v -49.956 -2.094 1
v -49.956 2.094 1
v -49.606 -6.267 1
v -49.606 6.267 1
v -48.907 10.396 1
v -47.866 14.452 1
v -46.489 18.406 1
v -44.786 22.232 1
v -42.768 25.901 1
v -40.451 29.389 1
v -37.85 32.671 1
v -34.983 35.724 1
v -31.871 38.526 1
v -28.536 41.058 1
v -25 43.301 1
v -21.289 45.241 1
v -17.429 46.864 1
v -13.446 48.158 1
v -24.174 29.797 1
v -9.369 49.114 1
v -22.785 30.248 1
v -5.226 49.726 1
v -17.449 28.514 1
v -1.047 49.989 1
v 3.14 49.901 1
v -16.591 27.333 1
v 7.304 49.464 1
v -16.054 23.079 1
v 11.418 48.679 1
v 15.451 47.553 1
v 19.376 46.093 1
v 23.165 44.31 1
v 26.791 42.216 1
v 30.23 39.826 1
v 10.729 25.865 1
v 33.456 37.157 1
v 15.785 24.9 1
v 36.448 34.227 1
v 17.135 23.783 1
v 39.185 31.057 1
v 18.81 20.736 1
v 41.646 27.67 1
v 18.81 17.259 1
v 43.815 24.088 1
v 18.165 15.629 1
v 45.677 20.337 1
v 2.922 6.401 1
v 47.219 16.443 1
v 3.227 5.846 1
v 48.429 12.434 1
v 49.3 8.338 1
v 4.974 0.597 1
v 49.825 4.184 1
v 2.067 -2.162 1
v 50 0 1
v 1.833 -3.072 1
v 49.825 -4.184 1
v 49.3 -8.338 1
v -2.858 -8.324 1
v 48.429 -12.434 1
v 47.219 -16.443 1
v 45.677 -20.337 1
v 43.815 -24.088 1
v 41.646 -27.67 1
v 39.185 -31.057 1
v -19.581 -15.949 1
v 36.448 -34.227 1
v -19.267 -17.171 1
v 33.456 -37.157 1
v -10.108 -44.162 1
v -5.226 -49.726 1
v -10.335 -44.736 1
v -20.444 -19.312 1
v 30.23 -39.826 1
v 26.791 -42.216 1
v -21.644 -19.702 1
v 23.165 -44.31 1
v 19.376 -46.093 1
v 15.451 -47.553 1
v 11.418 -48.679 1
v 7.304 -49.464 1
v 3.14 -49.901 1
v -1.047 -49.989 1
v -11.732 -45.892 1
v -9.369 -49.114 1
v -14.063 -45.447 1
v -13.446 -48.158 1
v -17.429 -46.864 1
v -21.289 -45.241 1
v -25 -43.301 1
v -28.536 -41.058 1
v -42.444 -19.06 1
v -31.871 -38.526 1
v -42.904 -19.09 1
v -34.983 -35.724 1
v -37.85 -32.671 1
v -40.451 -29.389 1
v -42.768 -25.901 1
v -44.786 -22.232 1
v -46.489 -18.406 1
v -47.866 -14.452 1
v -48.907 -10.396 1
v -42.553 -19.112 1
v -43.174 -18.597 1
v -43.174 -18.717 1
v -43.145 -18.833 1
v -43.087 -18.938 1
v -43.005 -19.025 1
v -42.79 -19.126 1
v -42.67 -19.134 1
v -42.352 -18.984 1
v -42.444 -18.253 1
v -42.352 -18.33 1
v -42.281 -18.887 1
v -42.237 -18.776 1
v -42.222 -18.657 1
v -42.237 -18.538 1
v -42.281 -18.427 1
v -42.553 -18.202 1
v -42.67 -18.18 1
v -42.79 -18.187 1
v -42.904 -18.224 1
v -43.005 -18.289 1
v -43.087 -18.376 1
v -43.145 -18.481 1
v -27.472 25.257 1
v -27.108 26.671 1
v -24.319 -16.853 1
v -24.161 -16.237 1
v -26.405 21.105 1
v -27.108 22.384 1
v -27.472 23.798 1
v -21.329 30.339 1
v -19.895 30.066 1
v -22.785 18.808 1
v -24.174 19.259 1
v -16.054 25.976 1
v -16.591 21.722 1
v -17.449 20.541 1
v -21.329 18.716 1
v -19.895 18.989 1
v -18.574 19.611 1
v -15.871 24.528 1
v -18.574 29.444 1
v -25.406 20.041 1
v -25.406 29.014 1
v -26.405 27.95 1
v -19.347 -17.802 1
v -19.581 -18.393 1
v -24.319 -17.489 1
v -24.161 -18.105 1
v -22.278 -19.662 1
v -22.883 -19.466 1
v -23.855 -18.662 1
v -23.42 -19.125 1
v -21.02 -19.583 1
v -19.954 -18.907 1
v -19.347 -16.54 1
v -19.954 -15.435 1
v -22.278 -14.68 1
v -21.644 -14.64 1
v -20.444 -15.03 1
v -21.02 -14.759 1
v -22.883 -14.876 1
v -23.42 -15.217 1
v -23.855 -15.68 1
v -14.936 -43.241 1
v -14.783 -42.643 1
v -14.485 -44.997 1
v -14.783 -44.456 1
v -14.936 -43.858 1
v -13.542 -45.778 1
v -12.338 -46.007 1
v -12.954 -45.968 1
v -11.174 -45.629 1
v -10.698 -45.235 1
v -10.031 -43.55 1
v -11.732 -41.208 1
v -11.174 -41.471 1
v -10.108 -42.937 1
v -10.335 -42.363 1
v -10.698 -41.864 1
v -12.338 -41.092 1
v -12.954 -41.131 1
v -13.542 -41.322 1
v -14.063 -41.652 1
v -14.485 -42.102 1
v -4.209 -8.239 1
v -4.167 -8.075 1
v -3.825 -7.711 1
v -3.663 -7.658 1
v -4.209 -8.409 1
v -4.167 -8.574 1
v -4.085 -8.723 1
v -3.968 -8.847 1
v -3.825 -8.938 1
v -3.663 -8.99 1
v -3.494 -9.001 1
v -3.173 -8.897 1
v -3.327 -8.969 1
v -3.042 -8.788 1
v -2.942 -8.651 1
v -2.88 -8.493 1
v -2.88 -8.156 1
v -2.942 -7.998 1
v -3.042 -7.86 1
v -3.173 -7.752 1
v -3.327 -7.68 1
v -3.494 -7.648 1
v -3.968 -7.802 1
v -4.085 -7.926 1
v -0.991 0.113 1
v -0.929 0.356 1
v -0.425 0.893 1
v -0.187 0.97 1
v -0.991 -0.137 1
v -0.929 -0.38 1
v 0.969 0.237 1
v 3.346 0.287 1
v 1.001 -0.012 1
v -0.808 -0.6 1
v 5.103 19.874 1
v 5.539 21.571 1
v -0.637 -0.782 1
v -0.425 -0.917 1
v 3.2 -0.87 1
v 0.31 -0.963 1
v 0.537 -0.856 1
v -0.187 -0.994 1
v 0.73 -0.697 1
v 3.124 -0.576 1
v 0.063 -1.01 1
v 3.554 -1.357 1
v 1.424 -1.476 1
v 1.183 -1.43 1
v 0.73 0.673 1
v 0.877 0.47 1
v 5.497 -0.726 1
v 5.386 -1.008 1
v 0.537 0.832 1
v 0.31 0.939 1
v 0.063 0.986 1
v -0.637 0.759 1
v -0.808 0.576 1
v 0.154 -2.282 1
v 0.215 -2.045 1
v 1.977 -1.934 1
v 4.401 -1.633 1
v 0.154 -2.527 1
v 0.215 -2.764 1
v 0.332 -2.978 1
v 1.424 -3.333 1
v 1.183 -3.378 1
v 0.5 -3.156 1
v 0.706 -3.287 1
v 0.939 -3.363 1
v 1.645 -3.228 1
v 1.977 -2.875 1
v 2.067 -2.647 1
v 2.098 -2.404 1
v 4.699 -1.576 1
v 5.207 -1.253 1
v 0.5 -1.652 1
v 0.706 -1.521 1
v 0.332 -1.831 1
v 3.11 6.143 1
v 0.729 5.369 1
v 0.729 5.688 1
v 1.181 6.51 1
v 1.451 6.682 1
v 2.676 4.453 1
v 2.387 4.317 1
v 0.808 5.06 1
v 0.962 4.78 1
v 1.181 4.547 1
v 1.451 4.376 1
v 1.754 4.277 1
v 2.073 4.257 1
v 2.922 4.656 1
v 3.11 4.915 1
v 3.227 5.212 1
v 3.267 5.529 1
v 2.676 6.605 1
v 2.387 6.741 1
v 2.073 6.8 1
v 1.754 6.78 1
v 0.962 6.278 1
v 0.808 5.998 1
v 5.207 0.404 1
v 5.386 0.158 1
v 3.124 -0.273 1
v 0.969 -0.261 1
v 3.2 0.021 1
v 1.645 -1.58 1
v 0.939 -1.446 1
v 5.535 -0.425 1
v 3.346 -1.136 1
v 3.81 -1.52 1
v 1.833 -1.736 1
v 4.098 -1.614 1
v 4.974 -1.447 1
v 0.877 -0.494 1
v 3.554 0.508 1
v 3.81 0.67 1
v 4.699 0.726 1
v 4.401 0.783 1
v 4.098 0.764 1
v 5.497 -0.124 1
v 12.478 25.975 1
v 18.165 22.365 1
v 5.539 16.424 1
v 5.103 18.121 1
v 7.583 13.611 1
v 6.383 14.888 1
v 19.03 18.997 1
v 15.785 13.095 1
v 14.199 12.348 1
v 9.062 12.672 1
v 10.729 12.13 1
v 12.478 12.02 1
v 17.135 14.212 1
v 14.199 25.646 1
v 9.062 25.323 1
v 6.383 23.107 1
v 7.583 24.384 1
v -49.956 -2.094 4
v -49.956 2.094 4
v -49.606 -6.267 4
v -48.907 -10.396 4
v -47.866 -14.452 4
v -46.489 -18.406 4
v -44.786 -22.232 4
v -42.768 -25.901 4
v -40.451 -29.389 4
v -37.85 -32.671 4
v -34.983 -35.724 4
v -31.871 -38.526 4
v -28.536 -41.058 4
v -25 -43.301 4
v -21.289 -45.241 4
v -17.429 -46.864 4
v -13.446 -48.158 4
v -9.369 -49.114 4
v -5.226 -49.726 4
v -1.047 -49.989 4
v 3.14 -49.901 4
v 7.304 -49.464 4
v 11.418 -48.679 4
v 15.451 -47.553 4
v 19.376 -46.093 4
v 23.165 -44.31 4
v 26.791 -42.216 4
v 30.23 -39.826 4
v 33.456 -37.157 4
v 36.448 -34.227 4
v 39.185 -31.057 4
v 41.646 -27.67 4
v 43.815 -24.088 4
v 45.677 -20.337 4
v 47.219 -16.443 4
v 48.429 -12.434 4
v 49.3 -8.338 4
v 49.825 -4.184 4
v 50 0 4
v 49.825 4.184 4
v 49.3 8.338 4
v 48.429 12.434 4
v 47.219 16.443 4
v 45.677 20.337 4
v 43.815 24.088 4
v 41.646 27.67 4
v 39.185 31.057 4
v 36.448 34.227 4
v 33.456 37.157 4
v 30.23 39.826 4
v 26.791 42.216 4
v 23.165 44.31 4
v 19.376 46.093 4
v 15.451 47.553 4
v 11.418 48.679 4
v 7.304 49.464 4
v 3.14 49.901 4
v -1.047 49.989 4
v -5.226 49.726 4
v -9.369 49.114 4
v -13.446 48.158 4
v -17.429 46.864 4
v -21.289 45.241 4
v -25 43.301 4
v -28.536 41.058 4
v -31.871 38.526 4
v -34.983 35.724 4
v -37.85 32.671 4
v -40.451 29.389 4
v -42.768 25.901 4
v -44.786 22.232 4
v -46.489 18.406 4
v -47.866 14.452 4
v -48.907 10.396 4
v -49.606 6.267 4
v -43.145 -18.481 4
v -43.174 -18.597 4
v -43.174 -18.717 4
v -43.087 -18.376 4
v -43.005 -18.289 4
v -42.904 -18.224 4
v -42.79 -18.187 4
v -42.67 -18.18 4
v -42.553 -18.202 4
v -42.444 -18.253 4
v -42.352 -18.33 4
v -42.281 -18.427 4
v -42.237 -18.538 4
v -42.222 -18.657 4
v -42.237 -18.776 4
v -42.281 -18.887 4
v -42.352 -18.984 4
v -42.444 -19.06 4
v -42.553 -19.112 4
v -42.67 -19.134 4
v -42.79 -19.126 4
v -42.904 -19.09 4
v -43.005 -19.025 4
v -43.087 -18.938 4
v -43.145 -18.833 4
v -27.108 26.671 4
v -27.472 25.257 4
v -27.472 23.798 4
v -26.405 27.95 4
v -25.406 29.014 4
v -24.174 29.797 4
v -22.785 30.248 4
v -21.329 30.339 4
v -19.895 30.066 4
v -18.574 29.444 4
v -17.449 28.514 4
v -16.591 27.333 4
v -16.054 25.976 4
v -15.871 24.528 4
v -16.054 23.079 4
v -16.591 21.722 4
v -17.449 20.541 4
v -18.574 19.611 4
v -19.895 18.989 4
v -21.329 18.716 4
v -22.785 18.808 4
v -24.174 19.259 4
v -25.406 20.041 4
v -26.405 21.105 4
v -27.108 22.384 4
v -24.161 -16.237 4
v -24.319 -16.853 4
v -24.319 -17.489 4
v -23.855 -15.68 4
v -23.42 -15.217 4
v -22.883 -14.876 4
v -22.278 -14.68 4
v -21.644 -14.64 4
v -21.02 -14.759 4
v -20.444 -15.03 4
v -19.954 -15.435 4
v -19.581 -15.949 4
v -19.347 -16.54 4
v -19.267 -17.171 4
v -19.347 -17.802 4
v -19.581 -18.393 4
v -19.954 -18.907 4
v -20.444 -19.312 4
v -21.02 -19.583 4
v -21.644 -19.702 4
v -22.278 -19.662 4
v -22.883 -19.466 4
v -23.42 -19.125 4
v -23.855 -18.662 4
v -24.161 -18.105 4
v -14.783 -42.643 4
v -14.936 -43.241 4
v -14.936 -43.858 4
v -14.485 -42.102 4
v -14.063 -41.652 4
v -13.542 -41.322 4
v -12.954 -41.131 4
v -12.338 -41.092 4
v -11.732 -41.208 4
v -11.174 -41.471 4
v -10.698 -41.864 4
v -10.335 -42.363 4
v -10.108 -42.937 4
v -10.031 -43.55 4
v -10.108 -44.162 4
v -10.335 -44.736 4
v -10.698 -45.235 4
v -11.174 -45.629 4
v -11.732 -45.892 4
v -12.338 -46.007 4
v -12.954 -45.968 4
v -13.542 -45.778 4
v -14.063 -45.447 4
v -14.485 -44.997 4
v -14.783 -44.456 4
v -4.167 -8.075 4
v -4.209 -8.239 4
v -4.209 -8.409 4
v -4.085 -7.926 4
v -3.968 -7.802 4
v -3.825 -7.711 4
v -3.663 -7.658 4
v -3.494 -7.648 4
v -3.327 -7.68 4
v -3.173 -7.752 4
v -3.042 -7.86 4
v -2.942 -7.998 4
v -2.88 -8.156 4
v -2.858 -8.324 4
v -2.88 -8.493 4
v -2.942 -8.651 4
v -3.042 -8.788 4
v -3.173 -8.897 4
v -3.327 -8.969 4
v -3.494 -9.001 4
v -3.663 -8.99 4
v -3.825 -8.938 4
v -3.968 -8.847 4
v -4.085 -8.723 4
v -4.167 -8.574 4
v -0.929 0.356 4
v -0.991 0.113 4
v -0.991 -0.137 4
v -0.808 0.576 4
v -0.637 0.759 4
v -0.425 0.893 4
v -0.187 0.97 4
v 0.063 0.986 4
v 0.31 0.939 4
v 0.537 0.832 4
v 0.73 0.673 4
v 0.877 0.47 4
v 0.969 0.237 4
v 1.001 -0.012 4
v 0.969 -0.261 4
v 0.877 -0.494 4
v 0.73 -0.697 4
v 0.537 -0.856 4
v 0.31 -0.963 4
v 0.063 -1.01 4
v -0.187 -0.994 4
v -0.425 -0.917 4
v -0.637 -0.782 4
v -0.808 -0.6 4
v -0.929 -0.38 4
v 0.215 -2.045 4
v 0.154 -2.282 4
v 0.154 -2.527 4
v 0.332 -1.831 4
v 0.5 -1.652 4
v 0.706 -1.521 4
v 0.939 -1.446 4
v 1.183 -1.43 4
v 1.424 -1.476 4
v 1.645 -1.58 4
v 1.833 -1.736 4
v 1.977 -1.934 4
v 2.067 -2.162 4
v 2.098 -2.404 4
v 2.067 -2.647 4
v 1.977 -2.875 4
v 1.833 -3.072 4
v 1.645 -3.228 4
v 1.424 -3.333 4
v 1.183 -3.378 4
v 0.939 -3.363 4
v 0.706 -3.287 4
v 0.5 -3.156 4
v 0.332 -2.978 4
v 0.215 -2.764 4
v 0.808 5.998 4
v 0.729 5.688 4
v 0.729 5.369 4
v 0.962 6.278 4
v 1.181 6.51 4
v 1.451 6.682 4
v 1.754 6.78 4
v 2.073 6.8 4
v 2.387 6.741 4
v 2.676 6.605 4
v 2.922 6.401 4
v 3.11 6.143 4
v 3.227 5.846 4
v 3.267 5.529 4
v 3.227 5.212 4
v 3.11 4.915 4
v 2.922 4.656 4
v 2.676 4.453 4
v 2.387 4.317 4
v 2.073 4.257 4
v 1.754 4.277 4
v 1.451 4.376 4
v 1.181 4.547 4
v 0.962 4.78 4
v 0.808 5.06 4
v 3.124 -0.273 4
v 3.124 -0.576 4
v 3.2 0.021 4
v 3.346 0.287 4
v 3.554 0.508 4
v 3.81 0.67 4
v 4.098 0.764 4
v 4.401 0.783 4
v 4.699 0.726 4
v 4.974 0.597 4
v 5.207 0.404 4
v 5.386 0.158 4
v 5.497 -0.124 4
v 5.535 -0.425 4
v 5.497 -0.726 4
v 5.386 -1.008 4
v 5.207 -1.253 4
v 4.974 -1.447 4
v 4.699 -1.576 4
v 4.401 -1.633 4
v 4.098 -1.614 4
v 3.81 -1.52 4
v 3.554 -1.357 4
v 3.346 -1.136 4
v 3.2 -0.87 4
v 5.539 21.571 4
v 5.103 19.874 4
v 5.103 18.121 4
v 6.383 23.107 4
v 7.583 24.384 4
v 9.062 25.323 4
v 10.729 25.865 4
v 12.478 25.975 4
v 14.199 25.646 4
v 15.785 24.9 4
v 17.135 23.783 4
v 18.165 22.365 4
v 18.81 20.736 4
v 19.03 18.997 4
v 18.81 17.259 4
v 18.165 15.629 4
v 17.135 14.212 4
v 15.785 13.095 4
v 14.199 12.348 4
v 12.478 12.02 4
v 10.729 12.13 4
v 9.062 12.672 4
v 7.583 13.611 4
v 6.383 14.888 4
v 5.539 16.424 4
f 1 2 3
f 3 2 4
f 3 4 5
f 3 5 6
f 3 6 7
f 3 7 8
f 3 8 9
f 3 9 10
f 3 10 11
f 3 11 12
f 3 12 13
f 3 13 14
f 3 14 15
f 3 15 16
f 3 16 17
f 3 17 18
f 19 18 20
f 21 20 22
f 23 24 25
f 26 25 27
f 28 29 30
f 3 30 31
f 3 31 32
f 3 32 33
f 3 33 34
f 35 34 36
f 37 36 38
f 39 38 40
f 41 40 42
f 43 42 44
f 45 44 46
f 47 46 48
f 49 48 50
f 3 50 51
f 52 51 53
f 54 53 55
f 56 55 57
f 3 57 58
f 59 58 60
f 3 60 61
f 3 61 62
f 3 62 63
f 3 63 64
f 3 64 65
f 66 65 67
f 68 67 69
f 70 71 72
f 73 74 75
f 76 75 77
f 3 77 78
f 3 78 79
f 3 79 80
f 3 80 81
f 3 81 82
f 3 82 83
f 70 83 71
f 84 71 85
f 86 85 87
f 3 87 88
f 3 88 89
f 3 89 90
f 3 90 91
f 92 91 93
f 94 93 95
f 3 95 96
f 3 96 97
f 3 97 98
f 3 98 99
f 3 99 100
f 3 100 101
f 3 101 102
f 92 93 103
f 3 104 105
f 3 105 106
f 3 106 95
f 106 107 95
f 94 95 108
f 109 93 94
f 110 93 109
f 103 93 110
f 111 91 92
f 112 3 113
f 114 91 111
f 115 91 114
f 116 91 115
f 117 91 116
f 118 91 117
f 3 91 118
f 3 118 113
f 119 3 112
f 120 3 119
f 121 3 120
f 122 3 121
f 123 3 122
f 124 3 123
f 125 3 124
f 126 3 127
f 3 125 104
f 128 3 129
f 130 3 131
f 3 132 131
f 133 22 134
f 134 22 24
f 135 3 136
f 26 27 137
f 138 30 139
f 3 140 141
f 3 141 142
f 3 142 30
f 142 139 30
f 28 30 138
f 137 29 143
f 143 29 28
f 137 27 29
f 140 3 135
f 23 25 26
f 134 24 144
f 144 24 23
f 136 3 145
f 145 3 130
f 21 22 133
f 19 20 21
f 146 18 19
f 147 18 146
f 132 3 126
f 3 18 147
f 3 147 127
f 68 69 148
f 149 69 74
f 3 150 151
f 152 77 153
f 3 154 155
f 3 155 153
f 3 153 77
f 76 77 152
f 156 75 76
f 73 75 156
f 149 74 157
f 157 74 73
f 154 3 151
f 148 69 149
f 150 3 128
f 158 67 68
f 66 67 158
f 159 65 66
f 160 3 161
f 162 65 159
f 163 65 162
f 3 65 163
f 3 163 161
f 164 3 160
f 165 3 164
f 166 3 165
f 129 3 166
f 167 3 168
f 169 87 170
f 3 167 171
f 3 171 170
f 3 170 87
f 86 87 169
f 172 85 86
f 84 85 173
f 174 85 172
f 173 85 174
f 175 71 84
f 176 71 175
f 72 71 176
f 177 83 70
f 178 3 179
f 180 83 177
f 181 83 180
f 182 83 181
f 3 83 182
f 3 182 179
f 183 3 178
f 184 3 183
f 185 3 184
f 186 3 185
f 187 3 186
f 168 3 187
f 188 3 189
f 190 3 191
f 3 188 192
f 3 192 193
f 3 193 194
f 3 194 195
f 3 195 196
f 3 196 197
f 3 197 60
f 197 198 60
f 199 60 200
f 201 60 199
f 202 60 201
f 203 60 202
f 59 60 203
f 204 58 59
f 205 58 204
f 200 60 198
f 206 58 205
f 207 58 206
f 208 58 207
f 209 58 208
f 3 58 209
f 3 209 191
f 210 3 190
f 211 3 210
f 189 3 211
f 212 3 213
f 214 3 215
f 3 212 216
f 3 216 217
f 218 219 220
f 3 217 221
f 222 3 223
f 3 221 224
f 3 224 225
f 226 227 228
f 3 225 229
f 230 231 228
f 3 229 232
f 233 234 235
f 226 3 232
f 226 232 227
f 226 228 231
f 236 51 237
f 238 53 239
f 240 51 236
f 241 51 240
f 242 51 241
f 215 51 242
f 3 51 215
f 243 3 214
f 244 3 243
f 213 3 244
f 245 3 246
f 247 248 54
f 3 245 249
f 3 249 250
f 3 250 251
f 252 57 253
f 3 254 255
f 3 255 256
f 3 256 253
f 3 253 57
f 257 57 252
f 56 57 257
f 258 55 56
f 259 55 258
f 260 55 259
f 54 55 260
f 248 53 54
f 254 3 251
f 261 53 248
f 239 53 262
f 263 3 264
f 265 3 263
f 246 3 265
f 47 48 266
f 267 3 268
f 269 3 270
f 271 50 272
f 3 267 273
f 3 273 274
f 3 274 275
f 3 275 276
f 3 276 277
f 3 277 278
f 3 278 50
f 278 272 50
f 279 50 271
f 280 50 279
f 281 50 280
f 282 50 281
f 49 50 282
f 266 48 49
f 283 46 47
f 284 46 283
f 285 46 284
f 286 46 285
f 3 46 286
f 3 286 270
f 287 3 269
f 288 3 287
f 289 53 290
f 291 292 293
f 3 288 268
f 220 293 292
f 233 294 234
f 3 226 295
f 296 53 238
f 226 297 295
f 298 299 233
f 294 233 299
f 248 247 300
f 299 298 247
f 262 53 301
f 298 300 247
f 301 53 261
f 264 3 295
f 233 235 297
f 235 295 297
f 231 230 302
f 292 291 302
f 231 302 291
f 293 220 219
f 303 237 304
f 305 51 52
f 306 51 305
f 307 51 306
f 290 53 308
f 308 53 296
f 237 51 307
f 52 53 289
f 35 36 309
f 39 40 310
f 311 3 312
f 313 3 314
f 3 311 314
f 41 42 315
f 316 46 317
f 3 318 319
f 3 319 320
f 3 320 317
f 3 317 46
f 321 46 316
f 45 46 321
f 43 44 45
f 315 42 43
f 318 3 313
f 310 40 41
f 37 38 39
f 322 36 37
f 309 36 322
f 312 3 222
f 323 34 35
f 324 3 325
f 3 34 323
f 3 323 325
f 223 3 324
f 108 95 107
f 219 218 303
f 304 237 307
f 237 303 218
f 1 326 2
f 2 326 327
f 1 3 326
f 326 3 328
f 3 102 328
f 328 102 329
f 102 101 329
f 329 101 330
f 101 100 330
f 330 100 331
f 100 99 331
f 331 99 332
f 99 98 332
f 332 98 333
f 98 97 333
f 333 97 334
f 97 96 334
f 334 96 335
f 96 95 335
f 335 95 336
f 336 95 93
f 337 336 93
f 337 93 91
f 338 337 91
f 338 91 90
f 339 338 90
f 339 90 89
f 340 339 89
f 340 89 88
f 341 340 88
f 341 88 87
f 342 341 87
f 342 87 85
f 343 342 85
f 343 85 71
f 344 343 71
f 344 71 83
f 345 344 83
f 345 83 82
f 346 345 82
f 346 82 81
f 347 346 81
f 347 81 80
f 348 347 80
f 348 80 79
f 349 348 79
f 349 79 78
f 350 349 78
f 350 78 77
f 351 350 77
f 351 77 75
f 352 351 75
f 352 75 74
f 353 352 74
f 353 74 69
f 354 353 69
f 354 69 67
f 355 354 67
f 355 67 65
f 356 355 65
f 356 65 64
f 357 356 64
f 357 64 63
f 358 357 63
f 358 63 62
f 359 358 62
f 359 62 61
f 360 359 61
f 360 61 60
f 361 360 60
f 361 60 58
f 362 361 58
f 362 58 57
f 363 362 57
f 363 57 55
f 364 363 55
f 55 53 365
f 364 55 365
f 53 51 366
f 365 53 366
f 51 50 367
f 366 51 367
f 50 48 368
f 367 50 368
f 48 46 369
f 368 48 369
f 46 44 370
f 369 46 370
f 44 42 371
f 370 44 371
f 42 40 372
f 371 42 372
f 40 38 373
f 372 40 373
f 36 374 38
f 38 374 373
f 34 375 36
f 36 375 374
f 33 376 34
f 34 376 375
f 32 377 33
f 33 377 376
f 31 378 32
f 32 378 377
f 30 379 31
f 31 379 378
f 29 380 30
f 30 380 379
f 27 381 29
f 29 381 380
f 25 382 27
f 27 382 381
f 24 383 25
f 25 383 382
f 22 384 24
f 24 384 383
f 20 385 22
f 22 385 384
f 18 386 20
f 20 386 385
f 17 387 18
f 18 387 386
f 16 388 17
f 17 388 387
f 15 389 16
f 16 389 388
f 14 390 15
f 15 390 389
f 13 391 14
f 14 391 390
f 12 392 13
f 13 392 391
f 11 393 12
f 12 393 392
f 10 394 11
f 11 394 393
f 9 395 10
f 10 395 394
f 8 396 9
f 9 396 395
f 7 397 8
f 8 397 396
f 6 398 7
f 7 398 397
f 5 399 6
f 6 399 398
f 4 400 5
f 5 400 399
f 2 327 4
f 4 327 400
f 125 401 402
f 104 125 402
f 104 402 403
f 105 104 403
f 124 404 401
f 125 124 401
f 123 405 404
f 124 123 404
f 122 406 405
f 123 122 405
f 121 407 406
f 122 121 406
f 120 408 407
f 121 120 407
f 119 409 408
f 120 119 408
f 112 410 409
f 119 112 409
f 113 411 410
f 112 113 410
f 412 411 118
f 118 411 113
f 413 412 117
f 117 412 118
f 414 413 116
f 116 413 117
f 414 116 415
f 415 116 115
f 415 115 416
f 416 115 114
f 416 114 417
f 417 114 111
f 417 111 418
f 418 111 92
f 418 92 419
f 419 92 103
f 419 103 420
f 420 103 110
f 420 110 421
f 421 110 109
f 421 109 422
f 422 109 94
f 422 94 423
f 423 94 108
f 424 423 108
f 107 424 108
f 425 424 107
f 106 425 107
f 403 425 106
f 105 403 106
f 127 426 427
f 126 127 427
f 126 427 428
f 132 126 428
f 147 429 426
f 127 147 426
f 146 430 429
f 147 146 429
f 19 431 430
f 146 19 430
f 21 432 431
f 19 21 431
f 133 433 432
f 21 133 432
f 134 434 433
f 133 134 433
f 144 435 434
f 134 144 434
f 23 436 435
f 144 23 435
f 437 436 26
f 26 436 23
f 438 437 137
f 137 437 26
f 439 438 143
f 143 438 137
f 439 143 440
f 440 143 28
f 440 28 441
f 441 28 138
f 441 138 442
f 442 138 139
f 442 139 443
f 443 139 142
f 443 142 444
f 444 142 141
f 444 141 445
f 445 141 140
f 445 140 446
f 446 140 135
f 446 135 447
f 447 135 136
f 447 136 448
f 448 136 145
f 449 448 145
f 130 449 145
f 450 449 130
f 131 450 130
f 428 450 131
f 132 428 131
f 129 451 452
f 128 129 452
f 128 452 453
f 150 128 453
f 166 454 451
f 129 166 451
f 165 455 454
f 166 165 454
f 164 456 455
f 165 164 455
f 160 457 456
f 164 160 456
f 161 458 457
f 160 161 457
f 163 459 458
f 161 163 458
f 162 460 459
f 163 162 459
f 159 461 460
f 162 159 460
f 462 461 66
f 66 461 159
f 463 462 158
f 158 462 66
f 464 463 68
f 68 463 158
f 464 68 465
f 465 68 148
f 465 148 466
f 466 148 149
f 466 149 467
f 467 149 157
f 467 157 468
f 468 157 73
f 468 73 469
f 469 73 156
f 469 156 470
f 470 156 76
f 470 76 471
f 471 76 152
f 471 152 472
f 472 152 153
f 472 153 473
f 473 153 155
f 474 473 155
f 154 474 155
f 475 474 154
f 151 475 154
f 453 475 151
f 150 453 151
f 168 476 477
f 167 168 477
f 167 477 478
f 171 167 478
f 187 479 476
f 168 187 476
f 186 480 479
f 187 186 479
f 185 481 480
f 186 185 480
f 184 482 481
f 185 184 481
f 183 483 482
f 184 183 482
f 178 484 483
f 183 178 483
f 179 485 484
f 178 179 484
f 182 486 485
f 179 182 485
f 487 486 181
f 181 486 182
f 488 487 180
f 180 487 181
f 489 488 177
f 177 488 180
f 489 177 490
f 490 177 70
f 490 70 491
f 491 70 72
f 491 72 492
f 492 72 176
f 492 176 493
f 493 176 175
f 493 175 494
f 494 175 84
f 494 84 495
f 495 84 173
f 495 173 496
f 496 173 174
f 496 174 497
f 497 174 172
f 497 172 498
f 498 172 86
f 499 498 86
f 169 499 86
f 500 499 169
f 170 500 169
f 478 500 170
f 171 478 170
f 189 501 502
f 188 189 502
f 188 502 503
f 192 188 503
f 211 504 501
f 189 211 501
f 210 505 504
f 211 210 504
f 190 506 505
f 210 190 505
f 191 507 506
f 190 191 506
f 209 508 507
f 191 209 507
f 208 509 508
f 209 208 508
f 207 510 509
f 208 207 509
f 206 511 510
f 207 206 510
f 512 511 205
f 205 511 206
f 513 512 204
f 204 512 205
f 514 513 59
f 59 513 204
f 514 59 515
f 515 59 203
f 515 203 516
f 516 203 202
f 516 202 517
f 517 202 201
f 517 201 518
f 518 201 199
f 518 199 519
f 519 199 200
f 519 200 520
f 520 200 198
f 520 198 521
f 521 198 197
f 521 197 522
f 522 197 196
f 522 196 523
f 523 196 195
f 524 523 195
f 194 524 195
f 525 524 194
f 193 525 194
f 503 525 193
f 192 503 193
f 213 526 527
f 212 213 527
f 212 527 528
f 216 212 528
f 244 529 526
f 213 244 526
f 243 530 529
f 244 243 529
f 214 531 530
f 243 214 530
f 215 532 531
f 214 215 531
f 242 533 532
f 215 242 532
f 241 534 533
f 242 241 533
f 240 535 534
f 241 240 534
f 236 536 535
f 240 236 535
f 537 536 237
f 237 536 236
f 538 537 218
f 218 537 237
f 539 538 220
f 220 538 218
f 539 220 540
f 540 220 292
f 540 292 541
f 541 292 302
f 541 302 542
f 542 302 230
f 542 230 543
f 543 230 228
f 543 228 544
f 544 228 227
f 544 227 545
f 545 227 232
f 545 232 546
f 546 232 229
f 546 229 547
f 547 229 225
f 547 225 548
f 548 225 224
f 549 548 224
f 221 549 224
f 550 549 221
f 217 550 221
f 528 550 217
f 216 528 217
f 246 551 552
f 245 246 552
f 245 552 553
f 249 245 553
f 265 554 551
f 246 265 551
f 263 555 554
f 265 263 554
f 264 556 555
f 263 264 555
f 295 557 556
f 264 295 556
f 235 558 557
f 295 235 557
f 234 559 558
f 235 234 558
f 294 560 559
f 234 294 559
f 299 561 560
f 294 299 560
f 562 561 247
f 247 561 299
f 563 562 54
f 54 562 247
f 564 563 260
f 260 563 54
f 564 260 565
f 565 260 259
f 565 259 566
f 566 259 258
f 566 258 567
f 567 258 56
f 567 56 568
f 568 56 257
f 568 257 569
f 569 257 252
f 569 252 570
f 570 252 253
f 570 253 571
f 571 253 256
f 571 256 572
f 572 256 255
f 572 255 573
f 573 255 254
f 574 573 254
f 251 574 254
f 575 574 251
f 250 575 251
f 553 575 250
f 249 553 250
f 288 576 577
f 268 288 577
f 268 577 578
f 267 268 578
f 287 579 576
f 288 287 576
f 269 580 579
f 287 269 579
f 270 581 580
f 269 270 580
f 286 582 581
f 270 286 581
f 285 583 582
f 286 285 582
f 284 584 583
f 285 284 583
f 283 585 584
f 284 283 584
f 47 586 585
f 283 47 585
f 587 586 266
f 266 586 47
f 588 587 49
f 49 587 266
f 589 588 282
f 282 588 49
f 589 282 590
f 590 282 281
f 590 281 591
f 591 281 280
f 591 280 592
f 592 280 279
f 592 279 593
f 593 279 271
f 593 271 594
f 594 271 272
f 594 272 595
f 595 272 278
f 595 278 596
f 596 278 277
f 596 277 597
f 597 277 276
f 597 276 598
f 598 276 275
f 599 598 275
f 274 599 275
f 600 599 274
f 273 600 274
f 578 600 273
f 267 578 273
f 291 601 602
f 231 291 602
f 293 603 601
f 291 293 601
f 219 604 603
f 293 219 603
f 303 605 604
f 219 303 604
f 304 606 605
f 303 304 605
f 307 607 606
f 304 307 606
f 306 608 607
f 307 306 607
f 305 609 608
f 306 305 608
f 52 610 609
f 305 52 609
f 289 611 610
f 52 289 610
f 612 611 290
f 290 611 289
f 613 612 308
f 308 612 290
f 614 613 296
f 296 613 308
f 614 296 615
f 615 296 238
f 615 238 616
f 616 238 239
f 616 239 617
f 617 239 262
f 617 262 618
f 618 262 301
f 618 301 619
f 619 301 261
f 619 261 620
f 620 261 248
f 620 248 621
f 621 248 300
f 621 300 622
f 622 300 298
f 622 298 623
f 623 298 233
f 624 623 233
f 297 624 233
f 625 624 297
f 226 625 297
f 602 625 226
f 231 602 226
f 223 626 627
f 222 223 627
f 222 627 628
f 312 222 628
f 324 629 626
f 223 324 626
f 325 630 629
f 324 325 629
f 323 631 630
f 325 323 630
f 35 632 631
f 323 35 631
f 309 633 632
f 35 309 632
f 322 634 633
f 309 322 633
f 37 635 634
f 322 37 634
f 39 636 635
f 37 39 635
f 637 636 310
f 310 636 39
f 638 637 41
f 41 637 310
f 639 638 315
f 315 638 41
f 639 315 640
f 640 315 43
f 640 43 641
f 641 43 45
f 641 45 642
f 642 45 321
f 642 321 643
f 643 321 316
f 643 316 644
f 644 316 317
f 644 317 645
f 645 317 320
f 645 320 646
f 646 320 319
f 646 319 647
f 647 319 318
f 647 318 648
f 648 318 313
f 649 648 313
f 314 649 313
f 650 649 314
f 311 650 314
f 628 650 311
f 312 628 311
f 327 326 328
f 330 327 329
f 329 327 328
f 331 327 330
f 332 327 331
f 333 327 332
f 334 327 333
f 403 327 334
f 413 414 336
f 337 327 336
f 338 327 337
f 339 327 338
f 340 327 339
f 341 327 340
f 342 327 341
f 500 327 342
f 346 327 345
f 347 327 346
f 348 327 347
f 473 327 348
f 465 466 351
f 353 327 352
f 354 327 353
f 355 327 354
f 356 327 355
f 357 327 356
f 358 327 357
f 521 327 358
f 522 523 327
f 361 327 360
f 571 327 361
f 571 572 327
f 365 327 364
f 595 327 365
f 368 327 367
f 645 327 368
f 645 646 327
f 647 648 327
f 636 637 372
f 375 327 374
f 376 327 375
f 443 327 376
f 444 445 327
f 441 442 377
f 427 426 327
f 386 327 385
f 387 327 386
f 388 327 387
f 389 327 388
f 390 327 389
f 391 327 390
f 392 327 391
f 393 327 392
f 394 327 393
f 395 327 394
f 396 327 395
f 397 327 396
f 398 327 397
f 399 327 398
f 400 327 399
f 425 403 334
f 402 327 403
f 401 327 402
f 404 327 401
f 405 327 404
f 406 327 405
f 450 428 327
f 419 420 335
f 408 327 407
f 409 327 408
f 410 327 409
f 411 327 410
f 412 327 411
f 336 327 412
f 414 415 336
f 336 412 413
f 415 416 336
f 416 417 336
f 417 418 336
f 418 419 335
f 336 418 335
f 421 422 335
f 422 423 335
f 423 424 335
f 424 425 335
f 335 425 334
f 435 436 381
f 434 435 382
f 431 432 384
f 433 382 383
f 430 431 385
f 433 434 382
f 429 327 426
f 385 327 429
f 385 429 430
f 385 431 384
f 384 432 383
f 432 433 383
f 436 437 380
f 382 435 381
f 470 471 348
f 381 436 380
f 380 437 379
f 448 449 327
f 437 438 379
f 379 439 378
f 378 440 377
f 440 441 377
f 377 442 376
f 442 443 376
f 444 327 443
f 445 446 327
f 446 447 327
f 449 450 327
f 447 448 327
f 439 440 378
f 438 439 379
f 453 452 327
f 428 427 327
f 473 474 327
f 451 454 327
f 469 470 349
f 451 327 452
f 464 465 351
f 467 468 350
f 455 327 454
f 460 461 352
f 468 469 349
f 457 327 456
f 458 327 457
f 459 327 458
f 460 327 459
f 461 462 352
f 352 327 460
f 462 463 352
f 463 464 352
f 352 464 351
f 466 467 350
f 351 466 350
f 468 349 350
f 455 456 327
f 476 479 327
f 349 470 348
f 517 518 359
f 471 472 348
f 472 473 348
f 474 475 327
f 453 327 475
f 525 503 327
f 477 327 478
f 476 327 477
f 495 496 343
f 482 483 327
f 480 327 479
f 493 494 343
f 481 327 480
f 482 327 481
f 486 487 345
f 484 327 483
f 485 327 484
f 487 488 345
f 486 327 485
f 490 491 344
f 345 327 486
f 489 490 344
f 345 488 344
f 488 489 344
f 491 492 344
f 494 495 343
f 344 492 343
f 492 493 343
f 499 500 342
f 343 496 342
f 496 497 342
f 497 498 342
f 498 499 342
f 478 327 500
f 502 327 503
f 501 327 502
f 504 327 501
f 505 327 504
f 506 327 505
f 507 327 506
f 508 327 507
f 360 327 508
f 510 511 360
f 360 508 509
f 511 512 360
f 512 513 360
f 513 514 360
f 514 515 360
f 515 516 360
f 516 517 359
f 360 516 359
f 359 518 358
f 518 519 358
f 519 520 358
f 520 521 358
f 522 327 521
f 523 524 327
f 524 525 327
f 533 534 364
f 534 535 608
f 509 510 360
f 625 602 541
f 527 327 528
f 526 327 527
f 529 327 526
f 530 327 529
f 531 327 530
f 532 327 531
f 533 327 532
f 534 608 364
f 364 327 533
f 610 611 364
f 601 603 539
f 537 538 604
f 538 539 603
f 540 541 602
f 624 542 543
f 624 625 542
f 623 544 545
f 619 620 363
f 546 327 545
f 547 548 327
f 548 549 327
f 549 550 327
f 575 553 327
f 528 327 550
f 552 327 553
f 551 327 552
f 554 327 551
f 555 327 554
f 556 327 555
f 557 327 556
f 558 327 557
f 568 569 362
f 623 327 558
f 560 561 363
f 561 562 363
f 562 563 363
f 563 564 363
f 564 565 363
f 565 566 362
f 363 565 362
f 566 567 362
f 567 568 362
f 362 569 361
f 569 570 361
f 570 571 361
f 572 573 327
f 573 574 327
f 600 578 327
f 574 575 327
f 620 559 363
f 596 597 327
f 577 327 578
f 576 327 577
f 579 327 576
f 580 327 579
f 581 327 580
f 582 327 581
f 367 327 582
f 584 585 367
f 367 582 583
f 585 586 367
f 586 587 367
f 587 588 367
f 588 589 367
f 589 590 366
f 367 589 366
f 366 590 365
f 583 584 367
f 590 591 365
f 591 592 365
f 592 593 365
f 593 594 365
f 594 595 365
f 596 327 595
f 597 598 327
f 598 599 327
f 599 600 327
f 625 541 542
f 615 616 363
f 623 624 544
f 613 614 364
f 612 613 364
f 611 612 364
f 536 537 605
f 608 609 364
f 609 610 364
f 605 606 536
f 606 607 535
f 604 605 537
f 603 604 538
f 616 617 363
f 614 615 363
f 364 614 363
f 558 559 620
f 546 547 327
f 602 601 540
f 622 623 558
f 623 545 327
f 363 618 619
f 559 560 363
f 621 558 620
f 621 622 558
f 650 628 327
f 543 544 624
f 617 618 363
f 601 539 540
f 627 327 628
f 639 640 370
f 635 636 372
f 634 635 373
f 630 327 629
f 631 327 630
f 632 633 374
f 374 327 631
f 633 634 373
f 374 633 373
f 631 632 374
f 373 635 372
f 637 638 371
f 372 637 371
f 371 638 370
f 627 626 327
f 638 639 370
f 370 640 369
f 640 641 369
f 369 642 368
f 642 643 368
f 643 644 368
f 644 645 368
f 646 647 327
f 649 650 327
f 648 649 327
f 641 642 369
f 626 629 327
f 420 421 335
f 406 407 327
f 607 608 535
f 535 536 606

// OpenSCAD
DISTANCE_SCALING_FACTOR = 50000000;
SIZE_SCALING_FACTOR = 10000;

/*
Generated with http://ssd.jpl.nasa.gov/horizons.cgi

    Sun
    X = 3.445928995828132E+04 Y =-5.977842930458921E+05 Z =-1.137675170209317E+03

    Mercury
    X = 2.804947516450232E+07 Y =-6.010920649215650E+07 Z =-7.433869064556710E+06

    Venus
    X = 1.081255565633538E+08 Y =-1.061806306006552E+07 Z =-6.378551380944608E+06

    Earth
    X = 4.982939238479244E+07 Y = 1.382169511085975E+08 Z = 6.126610014669597E+03

    Mars
    X =-8.840767546874936E+07 Y =-2.081078978986169E+08 Z =-2.168133984634548E+06

    Jupiter
    X = 4.012961468016061E+08 Y = 6.332450309910216E+08 Z =-1.159657024521962E+07

    Saturn
    X =-9.039260039400640E+08 Y = 1.021983212645124E+09 Z = 1.804472639908135E+07

    Uranus
    X =-2.180321109644558E+09 Y =-1.717095672422973E+09 Z = 2.191471638130832E+07

    Neptune
    X =-1.249308260673955E+09 Y =-4.354968224879044E+09 Z = 1.184551310038505E+08

    Pluto
    X =-4.270028274993162E+09 Y =-9.328475878087844E+08 Z = 1.334912452672853E+09

*/

difference(){
    // mounting plate
    translate([0,0,1]){
        cylinder(r=50, h=3,$fn=75);
    }

    // Sun
    translate([(3.445928995828132E+04/DISTANCE_SCALING_FACTOR),(-5.977842930458921E+05/DISTANCE_SCALING_FACTOR),0]){
        // the sun is huge, so it has its own scaling factor
        cylinder(r=1,h=20,$fn=25);
    }

    // Mercury
    translate([(2.804947516450232E+07/DISTANCE_SCALING_FACTOR)*2,(-6.010920649215650E+07/DISTANCE_SCALING_FACTOR)*2,0]){
        color("silver")
        cylinder(r=2440/SIZE_SCALING_FACTOR*4,h=20,$fn=25);
    }

    // Venus
    translate([(1.081255565633538E+08/DISTANCE_SCALING_FACTOR)*2,(-1.061806306006552E+07/DISTANCE_SCALING_FACTOR)*2,0]){
        color("yellow")
        cylinder(r=6051.8/SIZE_SCALING_FACTOR*2,h=20,$fn=25);
    }

    // Earth
    translate([(4.982939238479244E+07/DISTANCE_SCALING_FACTOR)*2,(1.382169511085975E+08/DISTANCE_SCALING_FACTOR)*2,0]){
        color("green")
        cylinder(r=6371.01/SIZE_SCALING_FACTOR*2,h=20,$fn=25);
    }

    // Mars
    translate([(-8.840767546874936E+07/DISTANCE_SCALING_FACTOR)*2,(-2.081078978986169E+08/DISTANCE_SCALING_FACTOR)*2,0]){
        color("red")
        cylinder(r=3389.9/SIZE_SCALING_FACTOR*2,h=20,$fn=25);
    }

    // Jupiter
    translate([(4.012961468016061E+08/DISTANCE_SCALING_FACTOR)*1.5,(6.332450309910216E+08/DISTANCE_SCALING_FACTOR)*1.5,0]){
        color("purple")
        cylinder(r=69911/SIZE_SCALING_FACTOR,h=20,$fn=25);
    }

    // Saturn
    translate([(-9.039260039400640E+08/DISTANCE_SCALING_FACTOR)*1.2,(1.021983212645124E+09/DISTANCE_SCALING_FACTOR)*1.2,0]){
        color("pink")
        cylinder(r=58232/SIZE_SCALING_FACTOR,h=20,$fn=25);
    }

    // Uranus and Neptune's distance has been tweaked out of scale to fit them on the plate
    // Uranus
    translate([(-2.180321109644558E+09/DISTANCE_SCALING_FACTOR)/2,(-1.717095672422973E+09/DISTANCE_SCALING_FACTOR)/2,0]){
        color("brown")
        cylinder(r=25362/SIZE_SCALING_FACTOR,h=20,$fn=25);
    }

    // Neptune
    translate([(-1.249308260673955E+09/DISTANCE_SCALING_FACTOR)/2,(-4.354968224879044E+09/DISTANCE_SCALING_FACTOR)/2,0]){
        color("blue")
        cylinder(r=24624/SIZE_SCALING_FACTOR,h=20,$fn=25);
    }

    // Pluto
    translate([(-4.270028274993162E+09/DISTANCE_SCALING_FACTOR)/2,(-9.328475878087844E+08/DISTANCE_SCALING_FACTOR),0]){
        color("orange")
        cylinder(r=1195/SIZE_SCALING_FACTOR*4,h=20,$fn=25);
    }
}
